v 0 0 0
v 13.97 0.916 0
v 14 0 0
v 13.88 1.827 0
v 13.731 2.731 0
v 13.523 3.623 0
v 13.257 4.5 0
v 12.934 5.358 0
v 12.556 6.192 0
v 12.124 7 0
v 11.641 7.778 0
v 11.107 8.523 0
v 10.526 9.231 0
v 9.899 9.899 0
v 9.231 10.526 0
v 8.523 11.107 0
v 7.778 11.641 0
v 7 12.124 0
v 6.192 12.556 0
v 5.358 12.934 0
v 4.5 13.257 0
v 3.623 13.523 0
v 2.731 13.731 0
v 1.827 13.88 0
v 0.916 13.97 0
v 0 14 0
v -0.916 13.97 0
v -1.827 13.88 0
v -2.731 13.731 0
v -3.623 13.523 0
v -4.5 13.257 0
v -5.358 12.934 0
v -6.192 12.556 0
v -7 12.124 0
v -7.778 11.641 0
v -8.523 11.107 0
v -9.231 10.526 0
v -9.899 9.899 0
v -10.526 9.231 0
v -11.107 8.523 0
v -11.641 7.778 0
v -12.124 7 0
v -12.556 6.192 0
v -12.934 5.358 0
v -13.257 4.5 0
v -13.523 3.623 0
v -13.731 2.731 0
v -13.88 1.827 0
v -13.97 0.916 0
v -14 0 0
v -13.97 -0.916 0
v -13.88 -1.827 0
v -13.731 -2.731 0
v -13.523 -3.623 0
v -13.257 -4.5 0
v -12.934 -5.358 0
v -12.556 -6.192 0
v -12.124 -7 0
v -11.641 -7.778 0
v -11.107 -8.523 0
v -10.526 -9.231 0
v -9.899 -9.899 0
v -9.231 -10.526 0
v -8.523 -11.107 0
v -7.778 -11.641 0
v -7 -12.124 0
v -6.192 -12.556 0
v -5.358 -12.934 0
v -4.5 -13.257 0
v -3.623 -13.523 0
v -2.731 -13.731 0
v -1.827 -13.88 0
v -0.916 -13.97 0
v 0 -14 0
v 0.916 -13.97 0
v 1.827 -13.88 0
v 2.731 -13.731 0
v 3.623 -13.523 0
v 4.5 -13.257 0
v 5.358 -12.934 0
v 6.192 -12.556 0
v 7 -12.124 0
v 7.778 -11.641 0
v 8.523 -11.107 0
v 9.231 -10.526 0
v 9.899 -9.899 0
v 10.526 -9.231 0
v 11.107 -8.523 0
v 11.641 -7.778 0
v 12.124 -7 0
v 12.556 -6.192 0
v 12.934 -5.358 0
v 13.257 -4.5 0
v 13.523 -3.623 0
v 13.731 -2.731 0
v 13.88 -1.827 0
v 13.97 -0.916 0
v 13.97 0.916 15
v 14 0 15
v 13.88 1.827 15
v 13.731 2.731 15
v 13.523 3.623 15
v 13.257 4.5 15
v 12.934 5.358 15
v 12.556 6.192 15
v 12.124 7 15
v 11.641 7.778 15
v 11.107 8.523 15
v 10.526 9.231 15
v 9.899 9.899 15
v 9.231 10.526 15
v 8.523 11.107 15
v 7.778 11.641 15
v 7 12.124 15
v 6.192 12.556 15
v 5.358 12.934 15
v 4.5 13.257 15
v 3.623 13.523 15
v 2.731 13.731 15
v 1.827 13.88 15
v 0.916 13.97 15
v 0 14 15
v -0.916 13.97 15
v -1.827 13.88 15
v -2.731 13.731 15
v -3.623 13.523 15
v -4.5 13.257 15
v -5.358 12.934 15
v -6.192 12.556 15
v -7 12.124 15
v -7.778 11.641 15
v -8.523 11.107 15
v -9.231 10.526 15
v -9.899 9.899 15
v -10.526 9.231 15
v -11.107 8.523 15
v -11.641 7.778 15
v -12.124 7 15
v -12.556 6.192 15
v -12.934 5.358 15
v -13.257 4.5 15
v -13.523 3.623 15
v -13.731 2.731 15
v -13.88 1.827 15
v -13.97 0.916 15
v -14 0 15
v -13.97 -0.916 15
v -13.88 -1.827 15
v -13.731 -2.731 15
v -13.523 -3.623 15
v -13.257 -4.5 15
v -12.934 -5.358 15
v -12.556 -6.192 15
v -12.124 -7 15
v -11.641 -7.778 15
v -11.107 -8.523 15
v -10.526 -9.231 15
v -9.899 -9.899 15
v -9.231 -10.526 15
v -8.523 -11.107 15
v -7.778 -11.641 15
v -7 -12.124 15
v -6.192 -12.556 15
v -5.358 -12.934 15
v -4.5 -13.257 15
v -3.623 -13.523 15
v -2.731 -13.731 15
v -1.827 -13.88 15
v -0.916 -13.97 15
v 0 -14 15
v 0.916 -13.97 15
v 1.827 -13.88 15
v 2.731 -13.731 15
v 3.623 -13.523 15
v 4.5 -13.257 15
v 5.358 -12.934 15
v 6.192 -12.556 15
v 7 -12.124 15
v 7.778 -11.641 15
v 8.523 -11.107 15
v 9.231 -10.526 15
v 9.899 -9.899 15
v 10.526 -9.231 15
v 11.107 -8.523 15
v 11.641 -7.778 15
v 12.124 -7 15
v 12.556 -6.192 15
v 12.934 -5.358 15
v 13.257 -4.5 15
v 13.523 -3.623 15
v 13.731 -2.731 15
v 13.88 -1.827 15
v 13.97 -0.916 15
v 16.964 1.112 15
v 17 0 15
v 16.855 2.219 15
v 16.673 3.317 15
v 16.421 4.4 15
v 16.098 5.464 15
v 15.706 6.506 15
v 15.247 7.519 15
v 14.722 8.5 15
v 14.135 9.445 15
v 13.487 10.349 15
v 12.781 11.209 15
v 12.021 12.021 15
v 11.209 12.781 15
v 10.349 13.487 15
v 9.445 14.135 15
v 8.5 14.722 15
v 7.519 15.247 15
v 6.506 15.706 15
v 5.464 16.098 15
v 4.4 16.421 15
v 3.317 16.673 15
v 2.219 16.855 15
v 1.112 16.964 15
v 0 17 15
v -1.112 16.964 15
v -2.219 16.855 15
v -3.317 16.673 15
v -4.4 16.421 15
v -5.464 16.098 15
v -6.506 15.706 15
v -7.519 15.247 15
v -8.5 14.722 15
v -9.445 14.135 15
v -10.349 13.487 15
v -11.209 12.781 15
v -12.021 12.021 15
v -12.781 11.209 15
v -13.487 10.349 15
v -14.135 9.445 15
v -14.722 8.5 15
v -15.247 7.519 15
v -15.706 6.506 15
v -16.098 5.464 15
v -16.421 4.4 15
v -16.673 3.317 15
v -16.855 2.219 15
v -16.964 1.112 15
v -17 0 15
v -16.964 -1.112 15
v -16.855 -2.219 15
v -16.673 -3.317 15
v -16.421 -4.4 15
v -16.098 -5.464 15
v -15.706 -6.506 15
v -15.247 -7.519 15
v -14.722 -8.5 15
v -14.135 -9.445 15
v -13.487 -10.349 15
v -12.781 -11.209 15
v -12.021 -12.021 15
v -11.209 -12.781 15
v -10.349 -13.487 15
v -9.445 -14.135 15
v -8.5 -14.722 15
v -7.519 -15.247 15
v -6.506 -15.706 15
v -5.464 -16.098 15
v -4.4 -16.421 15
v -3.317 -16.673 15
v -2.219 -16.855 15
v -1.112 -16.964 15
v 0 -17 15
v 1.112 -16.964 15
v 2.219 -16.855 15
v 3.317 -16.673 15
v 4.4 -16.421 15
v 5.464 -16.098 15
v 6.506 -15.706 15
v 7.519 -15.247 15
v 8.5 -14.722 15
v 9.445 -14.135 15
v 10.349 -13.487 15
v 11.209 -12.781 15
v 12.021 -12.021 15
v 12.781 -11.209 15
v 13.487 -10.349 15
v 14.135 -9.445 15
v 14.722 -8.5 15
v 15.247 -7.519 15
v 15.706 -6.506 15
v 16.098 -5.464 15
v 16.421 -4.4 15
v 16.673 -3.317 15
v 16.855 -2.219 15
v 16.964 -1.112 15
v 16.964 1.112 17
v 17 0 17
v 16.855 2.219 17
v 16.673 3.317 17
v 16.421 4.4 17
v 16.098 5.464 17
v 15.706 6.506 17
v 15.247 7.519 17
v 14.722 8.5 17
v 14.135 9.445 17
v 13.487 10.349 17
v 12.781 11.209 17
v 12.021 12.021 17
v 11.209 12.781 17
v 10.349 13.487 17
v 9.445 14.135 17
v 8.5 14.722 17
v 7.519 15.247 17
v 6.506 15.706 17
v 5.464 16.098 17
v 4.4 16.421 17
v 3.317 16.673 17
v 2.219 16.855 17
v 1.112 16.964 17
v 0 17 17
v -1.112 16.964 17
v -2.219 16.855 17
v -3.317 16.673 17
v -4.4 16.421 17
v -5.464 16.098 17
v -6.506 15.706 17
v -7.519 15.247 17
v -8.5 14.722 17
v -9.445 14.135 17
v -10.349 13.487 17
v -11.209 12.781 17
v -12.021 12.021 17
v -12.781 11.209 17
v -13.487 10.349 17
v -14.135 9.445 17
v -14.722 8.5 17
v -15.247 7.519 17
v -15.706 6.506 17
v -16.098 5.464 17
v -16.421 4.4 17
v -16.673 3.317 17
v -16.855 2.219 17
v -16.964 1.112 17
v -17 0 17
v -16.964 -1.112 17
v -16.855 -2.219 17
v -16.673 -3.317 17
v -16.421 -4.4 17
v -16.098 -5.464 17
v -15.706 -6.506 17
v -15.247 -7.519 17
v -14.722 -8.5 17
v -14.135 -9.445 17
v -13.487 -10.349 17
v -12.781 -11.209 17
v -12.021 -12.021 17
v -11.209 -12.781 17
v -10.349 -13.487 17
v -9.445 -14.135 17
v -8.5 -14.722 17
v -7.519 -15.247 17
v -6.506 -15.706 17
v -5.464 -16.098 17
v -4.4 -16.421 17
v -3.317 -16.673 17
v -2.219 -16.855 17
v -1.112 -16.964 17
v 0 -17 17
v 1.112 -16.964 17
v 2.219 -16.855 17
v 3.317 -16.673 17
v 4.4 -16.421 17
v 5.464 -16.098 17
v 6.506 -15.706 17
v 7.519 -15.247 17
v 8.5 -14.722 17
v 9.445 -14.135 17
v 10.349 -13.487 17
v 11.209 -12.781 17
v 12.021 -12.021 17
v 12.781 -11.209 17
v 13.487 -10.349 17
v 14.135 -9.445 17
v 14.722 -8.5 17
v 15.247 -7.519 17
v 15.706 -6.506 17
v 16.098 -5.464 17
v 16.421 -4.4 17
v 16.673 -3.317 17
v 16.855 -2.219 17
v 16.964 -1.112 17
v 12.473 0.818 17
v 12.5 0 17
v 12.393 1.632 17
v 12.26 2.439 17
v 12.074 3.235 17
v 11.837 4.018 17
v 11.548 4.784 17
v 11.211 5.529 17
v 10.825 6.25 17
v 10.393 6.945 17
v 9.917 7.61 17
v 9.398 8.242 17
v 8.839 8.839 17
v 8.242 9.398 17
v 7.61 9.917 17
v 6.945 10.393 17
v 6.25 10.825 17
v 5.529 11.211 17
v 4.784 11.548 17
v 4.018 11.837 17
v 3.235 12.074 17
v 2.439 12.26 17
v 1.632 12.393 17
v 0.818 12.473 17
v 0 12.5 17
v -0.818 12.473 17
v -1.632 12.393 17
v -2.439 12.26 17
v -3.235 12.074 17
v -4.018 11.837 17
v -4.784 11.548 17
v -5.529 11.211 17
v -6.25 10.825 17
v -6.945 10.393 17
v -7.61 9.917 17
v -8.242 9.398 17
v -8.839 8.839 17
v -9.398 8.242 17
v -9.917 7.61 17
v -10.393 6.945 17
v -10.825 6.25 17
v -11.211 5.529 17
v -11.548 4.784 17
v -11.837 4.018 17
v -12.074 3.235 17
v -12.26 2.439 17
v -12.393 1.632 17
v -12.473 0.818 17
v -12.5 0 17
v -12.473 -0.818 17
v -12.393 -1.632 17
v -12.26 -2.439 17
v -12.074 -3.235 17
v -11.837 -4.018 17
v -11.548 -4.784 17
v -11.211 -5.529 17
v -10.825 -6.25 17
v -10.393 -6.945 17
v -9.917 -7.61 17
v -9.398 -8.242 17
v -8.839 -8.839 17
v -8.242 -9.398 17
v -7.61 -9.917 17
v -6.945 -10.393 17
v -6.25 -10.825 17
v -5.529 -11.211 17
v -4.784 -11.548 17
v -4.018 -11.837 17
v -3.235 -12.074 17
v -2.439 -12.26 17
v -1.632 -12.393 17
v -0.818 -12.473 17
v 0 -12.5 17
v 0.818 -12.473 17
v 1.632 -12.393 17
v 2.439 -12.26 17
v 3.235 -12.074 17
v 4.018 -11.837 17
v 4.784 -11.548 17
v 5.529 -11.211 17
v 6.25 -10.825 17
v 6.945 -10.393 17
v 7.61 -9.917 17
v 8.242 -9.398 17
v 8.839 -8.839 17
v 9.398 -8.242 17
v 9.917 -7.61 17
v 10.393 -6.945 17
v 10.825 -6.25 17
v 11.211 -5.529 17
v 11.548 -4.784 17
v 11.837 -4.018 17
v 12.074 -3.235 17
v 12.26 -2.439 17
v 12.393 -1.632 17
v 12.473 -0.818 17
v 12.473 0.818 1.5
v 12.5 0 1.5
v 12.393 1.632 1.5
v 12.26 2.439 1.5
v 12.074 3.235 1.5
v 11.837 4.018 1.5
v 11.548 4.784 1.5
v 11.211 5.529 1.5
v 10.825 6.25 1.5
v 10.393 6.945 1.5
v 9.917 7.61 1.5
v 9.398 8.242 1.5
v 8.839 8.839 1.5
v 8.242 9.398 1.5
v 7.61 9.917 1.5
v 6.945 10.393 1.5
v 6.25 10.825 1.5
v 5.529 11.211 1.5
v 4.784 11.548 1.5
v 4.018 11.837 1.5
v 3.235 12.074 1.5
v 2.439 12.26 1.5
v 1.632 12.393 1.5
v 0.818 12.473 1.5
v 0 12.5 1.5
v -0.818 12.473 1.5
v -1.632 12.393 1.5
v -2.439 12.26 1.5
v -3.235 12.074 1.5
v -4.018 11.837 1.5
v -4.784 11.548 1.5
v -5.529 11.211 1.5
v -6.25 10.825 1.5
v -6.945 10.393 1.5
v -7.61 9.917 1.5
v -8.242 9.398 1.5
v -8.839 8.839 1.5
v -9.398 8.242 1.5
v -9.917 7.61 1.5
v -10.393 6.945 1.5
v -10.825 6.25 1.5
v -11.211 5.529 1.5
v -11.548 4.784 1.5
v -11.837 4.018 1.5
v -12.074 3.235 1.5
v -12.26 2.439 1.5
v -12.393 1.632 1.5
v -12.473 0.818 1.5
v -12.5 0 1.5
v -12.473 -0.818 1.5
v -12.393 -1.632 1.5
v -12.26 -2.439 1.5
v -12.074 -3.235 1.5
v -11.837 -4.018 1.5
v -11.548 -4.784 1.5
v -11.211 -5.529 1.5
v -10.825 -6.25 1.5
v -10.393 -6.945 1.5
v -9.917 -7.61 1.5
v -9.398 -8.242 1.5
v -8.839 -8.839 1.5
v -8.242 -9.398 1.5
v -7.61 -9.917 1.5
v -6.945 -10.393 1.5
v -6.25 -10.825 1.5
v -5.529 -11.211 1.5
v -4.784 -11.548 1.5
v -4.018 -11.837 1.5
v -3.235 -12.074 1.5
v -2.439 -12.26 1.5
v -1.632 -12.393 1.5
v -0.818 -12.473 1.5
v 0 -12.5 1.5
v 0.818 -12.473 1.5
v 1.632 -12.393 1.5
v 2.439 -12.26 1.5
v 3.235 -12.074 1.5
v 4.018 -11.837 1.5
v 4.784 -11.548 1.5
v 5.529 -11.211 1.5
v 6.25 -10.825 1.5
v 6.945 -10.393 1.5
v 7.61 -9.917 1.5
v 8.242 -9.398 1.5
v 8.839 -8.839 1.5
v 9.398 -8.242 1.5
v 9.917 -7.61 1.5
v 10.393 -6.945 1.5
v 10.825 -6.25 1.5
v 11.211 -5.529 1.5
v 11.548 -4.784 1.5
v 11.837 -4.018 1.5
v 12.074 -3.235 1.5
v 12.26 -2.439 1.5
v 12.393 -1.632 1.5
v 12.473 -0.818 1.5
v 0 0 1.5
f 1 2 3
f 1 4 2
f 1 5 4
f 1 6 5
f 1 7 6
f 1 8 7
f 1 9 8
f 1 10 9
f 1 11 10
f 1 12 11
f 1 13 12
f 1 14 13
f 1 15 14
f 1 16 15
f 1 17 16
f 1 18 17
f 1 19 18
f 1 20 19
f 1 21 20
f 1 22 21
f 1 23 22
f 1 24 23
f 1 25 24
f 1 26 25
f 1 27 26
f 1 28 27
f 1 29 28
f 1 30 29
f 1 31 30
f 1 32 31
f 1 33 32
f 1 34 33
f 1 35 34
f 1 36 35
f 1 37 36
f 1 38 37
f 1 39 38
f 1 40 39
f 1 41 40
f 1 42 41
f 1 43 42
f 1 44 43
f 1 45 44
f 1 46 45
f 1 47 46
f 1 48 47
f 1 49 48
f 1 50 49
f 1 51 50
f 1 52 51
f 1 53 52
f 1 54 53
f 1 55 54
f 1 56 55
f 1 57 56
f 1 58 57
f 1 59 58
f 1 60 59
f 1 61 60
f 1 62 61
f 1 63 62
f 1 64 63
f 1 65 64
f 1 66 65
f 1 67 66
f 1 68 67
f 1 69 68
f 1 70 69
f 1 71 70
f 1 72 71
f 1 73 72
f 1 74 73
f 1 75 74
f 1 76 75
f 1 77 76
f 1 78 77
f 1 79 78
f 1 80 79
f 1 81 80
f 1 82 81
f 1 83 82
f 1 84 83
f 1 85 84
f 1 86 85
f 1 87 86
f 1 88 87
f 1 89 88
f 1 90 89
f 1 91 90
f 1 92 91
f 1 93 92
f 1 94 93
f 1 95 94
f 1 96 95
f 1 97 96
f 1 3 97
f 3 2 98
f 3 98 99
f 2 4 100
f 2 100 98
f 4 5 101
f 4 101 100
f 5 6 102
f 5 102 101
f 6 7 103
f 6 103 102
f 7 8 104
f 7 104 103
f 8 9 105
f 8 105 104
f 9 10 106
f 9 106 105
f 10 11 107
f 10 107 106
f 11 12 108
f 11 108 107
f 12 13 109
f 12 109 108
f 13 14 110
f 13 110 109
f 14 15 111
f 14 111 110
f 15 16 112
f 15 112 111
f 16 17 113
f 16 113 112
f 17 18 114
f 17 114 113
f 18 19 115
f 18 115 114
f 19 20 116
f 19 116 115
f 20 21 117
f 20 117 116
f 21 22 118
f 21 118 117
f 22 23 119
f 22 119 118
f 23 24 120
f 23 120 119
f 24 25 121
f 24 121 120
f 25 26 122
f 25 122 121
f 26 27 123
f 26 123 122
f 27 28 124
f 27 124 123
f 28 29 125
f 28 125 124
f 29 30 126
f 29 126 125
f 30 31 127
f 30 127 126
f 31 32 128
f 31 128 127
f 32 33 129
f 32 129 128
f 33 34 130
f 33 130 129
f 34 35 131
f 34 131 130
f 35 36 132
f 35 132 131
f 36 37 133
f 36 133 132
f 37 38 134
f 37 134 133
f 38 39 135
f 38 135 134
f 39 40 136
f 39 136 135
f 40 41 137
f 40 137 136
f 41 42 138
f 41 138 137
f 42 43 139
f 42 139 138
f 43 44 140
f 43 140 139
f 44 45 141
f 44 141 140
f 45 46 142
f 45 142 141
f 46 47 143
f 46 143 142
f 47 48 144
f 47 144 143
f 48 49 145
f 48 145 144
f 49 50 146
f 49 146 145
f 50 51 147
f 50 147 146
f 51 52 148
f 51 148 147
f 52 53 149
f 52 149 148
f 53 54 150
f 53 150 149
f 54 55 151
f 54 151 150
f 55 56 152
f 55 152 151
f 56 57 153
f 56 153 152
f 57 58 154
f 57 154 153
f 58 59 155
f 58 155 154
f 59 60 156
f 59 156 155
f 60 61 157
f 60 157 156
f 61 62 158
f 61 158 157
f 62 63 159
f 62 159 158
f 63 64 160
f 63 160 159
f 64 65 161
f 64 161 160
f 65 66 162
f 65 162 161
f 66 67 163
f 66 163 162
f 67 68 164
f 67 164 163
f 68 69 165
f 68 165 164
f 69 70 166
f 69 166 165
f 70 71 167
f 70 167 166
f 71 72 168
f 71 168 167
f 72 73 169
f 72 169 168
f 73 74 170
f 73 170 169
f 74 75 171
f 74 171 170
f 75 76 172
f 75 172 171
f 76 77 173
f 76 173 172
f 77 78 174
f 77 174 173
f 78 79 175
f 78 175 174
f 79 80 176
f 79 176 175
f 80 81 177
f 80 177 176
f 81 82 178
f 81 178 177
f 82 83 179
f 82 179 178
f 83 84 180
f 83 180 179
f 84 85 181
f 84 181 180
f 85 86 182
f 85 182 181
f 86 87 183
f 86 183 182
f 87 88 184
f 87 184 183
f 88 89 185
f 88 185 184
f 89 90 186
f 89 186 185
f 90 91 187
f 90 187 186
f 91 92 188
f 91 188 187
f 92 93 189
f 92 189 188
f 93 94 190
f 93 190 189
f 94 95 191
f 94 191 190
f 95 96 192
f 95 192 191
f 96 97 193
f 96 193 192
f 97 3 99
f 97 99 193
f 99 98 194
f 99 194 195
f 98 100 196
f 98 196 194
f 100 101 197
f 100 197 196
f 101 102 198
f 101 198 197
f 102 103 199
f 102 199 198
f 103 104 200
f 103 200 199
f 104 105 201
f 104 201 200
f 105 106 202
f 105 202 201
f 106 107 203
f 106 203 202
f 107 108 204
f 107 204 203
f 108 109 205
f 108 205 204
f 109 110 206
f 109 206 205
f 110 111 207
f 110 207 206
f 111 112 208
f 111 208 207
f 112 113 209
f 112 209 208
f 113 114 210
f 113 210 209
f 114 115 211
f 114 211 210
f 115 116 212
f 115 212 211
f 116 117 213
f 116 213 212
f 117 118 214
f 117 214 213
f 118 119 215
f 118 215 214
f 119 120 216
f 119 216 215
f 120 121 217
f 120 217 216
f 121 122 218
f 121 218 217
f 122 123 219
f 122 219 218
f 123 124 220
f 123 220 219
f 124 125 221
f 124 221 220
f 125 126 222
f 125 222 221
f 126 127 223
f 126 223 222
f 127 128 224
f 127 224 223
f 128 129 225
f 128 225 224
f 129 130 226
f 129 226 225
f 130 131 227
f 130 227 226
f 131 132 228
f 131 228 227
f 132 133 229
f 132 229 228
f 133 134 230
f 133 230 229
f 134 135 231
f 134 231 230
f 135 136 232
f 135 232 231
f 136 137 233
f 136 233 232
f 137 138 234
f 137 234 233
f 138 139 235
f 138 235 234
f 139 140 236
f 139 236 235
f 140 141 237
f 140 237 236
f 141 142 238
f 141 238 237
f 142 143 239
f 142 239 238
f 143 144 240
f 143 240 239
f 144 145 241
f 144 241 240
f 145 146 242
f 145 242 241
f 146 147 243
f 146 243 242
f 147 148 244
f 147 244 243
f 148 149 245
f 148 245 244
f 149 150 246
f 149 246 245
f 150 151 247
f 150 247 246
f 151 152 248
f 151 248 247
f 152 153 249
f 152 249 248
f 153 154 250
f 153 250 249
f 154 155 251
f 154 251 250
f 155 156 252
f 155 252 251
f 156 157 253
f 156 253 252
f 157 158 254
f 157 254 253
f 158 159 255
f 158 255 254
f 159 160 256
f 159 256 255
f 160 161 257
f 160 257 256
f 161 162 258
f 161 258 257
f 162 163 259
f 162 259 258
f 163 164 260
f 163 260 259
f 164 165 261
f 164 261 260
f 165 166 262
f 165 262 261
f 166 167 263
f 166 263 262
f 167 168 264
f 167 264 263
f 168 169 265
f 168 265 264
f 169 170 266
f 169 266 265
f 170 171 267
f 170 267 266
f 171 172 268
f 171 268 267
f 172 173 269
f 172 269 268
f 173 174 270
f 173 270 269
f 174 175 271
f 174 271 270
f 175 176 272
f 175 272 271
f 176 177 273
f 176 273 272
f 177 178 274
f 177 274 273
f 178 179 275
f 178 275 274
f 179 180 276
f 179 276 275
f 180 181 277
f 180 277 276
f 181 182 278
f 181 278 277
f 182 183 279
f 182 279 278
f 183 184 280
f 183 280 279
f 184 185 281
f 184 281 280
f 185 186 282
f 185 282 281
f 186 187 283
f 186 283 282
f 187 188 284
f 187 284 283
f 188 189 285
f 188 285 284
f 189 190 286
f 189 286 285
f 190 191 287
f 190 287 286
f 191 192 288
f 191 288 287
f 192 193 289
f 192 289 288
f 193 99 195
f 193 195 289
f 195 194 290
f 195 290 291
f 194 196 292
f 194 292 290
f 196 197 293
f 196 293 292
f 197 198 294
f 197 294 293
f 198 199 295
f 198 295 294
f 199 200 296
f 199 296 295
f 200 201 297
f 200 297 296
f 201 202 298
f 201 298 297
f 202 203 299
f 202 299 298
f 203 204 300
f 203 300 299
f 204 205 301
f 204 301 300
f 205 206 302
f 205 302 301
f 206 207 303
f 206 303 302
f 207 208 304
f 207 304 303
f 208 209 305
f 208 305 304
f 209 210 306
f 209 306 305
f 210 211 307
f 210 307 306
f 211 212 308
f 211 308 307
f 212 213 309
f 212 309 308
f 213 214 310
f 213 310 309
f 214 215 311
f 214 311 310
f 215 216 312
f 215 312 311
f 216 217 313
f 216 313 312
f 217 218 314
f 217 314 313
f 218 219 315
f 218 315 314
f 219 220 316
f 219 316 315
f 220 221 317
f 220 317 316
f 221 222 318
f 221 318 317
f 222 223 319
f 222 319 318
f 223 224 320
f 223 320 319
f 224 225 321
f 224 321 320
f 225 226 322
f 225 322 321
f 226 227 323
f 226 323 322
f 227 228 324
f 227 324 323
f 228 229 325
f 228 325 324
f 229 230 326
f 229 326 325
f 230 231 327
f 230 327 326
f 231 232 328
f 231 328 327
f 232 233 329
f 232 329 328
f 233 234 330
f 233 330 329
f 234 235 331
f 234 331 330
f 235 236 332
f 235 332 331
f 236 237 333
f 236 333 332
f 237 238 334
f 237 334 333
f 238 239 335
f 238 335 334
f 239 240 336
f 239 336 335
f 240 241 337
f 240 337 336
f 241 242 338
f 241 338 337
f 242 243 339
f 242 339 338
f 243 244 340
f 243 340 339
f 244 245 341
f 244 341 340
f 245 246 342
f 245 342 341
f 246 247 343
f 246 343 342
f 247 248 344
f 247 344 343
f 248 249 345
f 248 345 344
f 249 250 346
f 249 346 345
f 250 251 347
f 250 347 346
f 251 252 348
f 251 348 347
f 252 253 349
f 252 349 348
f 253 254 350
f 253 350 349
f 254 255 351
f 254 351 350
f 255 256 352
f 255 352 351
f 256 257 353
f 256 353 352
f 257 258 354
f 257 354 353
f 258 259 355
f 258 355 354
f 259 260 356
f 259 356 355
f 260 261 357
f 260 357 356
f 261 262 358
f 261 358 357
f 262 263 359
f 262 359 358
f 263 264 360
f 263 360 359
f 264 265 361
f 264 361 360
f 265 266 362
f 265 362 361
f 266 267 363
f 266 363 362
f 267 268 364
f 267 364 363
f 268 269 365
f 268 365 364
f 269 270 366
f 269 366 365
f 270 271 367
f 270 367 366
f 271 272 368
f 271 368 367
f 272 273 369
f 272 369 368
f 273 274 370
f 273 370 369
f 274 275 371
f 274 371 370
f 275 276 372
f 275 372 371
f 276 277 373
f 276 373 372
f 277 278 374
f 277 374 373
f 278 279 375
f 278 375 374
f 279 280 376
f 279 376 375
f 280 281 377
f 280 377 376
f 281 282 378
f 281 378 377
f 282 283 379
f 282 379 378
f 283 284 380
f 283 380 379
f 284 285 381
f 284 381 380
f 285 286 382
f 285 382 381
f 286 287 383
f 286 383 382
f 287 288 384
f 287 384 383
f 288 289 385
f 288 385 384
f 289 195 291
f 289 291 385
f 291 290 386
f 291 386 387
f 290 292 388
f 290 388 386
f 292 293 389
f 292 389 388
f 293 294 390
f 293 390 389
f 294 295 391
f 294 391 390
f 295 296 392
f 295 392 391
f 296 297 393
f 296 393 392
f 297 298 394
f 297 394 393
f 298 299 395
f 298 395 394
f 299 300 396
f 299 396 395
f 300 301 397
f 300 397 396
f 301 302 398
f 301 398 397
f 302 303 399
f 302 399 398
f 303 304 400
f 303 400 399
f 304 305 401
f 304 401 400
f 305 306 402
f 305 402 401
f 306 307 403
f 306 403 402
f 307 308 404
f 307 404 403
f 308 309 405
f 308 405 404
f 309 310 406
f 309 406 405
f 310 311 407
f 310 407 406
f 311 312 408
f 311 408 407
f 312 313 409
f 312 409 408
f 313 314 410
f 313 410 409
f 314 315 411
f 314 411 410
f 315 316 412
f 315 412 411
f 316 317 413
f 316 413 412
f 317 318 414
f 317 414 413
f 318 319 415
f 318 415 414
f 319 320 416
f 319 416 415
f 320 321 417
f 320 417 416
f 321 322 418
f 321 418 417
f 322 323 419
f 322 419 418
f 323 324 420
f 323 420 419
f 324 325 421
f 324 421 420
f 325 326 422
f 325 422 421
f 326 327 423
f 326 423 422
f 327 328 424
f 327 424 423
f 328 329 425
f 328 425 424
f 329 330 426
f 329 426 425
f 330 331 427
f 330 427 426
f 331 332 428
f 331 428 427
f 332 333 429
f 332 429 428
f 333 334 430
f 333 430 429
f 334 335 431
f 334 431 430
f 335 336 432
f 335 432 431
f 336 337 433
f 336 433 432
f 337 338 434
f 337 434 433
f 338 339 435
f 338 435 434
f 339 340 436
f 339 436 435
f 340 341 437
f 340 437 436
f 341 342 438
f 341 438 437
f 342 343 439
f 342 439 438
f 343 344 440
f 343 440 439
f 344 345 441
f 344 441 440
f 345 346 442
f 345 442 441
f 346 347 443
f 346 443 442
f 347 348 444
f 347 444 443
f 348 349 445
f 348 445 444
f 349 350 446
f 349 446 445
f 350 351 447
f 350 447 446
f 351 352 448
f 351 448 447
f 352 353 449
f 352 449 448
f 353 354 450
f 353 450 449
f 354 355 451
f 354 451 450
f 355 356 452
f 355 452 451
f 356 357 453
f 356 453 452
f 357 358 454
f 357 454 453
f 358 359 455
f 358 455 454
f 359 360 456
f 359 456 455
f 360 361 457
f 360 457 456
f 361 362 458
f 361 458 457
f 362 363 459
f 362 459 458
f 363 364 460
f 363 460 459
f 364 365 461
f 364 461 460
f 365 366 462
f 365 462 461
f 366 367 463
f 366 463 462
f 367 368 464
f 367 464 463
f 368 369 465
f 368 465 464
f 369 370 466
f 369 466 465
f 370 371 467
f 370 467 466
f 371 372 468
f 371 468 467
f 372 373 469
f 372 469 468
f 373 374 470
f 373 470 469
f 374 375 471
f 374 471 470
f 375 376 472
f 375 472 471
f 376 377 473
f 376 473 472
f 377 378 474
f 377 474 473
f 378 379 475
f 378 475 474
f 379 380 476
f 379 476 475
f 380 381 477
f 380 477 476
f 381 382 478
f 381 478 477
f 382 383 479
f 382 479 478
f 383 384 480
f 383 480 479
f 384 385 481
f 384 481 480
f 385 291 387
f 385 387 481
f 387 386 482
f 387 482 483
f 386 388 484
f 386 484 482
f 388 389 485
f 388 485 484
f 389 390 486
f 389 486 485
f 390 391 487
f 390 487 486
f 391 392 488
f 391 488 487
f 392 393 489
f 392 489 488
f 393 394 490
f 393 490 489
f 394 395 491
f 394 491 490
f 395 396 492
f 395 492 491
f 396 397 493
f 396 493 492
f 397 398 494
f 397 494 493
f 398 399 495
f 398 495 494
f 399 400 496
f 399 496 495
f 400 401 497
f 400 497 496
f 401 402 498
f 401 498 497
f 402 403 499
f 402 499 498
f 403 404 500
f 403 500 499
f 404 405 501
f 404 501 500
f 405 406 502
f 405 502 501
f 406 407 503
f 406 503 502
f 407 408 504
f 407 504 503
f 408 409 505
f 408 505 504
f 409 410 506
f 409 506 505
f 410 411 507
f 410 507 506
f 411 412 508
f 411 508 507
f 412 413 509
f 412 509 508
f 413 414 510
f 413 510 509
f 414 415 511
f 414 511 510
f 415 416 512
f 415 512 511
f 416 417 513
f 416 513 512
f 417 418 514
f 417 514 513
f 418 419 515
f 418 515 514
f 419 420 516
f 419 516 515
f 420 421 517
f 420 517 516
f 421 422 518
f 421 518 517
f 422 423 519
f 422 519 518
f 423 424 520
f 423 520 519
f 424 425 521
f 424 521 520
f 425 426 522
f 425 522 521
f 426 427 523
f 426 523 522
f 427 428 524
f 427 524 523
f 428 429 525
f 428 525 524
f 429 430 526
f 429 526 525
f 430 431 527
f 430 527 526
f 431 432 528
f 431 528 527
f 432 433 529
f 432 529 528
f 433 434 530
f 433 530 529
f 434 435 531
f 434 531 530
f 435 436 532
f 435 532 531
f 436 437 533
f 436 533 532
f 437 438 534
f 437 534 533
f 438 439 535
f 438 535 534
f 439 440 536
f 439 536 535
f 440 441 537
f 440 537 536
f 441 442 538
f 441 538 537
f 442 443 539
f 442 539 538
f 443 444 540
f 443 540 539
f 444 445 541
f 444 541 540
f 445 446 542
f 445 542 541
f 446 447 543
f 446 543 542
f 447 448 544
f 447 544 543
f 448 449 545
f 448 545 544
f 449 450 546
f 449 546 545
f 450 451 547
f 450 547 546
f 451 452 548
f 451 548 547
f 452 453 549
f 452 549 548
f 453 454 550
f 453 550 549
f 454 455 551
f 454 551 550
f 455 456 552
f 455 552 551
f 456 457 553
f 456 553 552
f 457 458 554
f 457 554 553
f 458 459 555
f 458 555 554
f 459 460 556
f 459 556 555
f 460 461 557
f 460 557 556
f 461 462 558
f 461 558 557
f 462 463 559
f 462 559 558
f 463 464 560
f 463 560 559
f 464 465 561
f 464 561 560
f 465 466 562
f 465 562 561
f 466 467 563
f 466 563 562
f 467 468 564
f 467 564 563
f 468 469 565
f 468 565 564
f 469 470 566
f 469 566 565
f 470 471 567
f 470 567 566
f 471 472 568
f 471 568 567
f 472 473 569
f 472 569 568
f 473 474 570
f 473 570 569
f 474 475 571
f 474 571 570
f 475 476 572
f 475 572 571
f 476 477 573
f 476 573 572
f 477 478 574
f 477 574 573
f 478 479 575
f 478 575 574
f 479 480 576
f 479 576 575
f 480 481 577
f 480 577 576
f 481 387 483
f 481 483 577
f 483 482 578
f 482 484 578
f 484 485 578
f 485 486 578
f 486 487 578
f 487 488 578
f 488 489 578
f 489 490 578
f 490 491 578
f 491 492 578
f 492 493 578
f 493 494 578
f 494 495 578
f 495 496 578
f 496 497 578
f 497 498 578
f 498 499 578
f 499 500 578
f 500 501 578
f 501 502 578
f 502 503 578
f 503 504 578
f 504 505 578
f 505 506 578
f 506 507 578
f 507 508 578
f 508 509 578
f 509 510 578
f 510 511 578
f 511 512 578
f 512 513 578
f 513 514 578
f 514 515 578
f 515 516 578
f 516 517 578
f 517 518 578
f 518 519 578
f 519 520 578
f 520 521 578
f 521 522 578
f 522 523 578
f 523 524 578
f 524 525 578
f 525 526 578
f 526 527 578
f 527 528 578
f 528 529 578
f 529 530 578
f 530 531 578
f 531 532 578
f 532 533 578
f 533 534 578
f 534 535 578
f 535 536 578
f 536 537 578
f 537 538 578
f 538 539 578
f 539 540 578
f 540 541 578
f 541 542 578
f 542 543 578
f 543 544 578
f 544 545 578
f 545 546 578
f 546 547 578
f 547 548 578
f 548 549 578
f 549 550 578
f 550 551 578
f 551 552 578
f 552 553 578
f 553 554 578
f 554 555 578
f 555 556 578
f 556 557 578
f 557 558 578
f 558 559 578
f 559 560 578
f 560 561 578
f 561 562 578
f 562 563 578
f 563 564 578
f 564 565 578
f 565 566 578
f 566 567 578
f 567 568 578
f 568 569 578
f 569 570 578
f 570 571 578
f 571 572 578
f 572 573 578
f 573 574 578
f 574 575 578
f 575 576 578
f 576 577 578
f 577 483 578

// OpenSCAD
// Original MechIntel educational model. CC0-1.0. Units: mm.
// Not a standardized or load-rated component.
$fn=96;
// Section points: [radius, height], mm. Edit to change the profile.
section=[[0, 0], [14, 0], [14, 15], [17, 15], [17, 17], [12.5, 17], [12.5, 1.5], [0, 1.5]];
rotate_extrude($fn=96) polygon(points=section);
